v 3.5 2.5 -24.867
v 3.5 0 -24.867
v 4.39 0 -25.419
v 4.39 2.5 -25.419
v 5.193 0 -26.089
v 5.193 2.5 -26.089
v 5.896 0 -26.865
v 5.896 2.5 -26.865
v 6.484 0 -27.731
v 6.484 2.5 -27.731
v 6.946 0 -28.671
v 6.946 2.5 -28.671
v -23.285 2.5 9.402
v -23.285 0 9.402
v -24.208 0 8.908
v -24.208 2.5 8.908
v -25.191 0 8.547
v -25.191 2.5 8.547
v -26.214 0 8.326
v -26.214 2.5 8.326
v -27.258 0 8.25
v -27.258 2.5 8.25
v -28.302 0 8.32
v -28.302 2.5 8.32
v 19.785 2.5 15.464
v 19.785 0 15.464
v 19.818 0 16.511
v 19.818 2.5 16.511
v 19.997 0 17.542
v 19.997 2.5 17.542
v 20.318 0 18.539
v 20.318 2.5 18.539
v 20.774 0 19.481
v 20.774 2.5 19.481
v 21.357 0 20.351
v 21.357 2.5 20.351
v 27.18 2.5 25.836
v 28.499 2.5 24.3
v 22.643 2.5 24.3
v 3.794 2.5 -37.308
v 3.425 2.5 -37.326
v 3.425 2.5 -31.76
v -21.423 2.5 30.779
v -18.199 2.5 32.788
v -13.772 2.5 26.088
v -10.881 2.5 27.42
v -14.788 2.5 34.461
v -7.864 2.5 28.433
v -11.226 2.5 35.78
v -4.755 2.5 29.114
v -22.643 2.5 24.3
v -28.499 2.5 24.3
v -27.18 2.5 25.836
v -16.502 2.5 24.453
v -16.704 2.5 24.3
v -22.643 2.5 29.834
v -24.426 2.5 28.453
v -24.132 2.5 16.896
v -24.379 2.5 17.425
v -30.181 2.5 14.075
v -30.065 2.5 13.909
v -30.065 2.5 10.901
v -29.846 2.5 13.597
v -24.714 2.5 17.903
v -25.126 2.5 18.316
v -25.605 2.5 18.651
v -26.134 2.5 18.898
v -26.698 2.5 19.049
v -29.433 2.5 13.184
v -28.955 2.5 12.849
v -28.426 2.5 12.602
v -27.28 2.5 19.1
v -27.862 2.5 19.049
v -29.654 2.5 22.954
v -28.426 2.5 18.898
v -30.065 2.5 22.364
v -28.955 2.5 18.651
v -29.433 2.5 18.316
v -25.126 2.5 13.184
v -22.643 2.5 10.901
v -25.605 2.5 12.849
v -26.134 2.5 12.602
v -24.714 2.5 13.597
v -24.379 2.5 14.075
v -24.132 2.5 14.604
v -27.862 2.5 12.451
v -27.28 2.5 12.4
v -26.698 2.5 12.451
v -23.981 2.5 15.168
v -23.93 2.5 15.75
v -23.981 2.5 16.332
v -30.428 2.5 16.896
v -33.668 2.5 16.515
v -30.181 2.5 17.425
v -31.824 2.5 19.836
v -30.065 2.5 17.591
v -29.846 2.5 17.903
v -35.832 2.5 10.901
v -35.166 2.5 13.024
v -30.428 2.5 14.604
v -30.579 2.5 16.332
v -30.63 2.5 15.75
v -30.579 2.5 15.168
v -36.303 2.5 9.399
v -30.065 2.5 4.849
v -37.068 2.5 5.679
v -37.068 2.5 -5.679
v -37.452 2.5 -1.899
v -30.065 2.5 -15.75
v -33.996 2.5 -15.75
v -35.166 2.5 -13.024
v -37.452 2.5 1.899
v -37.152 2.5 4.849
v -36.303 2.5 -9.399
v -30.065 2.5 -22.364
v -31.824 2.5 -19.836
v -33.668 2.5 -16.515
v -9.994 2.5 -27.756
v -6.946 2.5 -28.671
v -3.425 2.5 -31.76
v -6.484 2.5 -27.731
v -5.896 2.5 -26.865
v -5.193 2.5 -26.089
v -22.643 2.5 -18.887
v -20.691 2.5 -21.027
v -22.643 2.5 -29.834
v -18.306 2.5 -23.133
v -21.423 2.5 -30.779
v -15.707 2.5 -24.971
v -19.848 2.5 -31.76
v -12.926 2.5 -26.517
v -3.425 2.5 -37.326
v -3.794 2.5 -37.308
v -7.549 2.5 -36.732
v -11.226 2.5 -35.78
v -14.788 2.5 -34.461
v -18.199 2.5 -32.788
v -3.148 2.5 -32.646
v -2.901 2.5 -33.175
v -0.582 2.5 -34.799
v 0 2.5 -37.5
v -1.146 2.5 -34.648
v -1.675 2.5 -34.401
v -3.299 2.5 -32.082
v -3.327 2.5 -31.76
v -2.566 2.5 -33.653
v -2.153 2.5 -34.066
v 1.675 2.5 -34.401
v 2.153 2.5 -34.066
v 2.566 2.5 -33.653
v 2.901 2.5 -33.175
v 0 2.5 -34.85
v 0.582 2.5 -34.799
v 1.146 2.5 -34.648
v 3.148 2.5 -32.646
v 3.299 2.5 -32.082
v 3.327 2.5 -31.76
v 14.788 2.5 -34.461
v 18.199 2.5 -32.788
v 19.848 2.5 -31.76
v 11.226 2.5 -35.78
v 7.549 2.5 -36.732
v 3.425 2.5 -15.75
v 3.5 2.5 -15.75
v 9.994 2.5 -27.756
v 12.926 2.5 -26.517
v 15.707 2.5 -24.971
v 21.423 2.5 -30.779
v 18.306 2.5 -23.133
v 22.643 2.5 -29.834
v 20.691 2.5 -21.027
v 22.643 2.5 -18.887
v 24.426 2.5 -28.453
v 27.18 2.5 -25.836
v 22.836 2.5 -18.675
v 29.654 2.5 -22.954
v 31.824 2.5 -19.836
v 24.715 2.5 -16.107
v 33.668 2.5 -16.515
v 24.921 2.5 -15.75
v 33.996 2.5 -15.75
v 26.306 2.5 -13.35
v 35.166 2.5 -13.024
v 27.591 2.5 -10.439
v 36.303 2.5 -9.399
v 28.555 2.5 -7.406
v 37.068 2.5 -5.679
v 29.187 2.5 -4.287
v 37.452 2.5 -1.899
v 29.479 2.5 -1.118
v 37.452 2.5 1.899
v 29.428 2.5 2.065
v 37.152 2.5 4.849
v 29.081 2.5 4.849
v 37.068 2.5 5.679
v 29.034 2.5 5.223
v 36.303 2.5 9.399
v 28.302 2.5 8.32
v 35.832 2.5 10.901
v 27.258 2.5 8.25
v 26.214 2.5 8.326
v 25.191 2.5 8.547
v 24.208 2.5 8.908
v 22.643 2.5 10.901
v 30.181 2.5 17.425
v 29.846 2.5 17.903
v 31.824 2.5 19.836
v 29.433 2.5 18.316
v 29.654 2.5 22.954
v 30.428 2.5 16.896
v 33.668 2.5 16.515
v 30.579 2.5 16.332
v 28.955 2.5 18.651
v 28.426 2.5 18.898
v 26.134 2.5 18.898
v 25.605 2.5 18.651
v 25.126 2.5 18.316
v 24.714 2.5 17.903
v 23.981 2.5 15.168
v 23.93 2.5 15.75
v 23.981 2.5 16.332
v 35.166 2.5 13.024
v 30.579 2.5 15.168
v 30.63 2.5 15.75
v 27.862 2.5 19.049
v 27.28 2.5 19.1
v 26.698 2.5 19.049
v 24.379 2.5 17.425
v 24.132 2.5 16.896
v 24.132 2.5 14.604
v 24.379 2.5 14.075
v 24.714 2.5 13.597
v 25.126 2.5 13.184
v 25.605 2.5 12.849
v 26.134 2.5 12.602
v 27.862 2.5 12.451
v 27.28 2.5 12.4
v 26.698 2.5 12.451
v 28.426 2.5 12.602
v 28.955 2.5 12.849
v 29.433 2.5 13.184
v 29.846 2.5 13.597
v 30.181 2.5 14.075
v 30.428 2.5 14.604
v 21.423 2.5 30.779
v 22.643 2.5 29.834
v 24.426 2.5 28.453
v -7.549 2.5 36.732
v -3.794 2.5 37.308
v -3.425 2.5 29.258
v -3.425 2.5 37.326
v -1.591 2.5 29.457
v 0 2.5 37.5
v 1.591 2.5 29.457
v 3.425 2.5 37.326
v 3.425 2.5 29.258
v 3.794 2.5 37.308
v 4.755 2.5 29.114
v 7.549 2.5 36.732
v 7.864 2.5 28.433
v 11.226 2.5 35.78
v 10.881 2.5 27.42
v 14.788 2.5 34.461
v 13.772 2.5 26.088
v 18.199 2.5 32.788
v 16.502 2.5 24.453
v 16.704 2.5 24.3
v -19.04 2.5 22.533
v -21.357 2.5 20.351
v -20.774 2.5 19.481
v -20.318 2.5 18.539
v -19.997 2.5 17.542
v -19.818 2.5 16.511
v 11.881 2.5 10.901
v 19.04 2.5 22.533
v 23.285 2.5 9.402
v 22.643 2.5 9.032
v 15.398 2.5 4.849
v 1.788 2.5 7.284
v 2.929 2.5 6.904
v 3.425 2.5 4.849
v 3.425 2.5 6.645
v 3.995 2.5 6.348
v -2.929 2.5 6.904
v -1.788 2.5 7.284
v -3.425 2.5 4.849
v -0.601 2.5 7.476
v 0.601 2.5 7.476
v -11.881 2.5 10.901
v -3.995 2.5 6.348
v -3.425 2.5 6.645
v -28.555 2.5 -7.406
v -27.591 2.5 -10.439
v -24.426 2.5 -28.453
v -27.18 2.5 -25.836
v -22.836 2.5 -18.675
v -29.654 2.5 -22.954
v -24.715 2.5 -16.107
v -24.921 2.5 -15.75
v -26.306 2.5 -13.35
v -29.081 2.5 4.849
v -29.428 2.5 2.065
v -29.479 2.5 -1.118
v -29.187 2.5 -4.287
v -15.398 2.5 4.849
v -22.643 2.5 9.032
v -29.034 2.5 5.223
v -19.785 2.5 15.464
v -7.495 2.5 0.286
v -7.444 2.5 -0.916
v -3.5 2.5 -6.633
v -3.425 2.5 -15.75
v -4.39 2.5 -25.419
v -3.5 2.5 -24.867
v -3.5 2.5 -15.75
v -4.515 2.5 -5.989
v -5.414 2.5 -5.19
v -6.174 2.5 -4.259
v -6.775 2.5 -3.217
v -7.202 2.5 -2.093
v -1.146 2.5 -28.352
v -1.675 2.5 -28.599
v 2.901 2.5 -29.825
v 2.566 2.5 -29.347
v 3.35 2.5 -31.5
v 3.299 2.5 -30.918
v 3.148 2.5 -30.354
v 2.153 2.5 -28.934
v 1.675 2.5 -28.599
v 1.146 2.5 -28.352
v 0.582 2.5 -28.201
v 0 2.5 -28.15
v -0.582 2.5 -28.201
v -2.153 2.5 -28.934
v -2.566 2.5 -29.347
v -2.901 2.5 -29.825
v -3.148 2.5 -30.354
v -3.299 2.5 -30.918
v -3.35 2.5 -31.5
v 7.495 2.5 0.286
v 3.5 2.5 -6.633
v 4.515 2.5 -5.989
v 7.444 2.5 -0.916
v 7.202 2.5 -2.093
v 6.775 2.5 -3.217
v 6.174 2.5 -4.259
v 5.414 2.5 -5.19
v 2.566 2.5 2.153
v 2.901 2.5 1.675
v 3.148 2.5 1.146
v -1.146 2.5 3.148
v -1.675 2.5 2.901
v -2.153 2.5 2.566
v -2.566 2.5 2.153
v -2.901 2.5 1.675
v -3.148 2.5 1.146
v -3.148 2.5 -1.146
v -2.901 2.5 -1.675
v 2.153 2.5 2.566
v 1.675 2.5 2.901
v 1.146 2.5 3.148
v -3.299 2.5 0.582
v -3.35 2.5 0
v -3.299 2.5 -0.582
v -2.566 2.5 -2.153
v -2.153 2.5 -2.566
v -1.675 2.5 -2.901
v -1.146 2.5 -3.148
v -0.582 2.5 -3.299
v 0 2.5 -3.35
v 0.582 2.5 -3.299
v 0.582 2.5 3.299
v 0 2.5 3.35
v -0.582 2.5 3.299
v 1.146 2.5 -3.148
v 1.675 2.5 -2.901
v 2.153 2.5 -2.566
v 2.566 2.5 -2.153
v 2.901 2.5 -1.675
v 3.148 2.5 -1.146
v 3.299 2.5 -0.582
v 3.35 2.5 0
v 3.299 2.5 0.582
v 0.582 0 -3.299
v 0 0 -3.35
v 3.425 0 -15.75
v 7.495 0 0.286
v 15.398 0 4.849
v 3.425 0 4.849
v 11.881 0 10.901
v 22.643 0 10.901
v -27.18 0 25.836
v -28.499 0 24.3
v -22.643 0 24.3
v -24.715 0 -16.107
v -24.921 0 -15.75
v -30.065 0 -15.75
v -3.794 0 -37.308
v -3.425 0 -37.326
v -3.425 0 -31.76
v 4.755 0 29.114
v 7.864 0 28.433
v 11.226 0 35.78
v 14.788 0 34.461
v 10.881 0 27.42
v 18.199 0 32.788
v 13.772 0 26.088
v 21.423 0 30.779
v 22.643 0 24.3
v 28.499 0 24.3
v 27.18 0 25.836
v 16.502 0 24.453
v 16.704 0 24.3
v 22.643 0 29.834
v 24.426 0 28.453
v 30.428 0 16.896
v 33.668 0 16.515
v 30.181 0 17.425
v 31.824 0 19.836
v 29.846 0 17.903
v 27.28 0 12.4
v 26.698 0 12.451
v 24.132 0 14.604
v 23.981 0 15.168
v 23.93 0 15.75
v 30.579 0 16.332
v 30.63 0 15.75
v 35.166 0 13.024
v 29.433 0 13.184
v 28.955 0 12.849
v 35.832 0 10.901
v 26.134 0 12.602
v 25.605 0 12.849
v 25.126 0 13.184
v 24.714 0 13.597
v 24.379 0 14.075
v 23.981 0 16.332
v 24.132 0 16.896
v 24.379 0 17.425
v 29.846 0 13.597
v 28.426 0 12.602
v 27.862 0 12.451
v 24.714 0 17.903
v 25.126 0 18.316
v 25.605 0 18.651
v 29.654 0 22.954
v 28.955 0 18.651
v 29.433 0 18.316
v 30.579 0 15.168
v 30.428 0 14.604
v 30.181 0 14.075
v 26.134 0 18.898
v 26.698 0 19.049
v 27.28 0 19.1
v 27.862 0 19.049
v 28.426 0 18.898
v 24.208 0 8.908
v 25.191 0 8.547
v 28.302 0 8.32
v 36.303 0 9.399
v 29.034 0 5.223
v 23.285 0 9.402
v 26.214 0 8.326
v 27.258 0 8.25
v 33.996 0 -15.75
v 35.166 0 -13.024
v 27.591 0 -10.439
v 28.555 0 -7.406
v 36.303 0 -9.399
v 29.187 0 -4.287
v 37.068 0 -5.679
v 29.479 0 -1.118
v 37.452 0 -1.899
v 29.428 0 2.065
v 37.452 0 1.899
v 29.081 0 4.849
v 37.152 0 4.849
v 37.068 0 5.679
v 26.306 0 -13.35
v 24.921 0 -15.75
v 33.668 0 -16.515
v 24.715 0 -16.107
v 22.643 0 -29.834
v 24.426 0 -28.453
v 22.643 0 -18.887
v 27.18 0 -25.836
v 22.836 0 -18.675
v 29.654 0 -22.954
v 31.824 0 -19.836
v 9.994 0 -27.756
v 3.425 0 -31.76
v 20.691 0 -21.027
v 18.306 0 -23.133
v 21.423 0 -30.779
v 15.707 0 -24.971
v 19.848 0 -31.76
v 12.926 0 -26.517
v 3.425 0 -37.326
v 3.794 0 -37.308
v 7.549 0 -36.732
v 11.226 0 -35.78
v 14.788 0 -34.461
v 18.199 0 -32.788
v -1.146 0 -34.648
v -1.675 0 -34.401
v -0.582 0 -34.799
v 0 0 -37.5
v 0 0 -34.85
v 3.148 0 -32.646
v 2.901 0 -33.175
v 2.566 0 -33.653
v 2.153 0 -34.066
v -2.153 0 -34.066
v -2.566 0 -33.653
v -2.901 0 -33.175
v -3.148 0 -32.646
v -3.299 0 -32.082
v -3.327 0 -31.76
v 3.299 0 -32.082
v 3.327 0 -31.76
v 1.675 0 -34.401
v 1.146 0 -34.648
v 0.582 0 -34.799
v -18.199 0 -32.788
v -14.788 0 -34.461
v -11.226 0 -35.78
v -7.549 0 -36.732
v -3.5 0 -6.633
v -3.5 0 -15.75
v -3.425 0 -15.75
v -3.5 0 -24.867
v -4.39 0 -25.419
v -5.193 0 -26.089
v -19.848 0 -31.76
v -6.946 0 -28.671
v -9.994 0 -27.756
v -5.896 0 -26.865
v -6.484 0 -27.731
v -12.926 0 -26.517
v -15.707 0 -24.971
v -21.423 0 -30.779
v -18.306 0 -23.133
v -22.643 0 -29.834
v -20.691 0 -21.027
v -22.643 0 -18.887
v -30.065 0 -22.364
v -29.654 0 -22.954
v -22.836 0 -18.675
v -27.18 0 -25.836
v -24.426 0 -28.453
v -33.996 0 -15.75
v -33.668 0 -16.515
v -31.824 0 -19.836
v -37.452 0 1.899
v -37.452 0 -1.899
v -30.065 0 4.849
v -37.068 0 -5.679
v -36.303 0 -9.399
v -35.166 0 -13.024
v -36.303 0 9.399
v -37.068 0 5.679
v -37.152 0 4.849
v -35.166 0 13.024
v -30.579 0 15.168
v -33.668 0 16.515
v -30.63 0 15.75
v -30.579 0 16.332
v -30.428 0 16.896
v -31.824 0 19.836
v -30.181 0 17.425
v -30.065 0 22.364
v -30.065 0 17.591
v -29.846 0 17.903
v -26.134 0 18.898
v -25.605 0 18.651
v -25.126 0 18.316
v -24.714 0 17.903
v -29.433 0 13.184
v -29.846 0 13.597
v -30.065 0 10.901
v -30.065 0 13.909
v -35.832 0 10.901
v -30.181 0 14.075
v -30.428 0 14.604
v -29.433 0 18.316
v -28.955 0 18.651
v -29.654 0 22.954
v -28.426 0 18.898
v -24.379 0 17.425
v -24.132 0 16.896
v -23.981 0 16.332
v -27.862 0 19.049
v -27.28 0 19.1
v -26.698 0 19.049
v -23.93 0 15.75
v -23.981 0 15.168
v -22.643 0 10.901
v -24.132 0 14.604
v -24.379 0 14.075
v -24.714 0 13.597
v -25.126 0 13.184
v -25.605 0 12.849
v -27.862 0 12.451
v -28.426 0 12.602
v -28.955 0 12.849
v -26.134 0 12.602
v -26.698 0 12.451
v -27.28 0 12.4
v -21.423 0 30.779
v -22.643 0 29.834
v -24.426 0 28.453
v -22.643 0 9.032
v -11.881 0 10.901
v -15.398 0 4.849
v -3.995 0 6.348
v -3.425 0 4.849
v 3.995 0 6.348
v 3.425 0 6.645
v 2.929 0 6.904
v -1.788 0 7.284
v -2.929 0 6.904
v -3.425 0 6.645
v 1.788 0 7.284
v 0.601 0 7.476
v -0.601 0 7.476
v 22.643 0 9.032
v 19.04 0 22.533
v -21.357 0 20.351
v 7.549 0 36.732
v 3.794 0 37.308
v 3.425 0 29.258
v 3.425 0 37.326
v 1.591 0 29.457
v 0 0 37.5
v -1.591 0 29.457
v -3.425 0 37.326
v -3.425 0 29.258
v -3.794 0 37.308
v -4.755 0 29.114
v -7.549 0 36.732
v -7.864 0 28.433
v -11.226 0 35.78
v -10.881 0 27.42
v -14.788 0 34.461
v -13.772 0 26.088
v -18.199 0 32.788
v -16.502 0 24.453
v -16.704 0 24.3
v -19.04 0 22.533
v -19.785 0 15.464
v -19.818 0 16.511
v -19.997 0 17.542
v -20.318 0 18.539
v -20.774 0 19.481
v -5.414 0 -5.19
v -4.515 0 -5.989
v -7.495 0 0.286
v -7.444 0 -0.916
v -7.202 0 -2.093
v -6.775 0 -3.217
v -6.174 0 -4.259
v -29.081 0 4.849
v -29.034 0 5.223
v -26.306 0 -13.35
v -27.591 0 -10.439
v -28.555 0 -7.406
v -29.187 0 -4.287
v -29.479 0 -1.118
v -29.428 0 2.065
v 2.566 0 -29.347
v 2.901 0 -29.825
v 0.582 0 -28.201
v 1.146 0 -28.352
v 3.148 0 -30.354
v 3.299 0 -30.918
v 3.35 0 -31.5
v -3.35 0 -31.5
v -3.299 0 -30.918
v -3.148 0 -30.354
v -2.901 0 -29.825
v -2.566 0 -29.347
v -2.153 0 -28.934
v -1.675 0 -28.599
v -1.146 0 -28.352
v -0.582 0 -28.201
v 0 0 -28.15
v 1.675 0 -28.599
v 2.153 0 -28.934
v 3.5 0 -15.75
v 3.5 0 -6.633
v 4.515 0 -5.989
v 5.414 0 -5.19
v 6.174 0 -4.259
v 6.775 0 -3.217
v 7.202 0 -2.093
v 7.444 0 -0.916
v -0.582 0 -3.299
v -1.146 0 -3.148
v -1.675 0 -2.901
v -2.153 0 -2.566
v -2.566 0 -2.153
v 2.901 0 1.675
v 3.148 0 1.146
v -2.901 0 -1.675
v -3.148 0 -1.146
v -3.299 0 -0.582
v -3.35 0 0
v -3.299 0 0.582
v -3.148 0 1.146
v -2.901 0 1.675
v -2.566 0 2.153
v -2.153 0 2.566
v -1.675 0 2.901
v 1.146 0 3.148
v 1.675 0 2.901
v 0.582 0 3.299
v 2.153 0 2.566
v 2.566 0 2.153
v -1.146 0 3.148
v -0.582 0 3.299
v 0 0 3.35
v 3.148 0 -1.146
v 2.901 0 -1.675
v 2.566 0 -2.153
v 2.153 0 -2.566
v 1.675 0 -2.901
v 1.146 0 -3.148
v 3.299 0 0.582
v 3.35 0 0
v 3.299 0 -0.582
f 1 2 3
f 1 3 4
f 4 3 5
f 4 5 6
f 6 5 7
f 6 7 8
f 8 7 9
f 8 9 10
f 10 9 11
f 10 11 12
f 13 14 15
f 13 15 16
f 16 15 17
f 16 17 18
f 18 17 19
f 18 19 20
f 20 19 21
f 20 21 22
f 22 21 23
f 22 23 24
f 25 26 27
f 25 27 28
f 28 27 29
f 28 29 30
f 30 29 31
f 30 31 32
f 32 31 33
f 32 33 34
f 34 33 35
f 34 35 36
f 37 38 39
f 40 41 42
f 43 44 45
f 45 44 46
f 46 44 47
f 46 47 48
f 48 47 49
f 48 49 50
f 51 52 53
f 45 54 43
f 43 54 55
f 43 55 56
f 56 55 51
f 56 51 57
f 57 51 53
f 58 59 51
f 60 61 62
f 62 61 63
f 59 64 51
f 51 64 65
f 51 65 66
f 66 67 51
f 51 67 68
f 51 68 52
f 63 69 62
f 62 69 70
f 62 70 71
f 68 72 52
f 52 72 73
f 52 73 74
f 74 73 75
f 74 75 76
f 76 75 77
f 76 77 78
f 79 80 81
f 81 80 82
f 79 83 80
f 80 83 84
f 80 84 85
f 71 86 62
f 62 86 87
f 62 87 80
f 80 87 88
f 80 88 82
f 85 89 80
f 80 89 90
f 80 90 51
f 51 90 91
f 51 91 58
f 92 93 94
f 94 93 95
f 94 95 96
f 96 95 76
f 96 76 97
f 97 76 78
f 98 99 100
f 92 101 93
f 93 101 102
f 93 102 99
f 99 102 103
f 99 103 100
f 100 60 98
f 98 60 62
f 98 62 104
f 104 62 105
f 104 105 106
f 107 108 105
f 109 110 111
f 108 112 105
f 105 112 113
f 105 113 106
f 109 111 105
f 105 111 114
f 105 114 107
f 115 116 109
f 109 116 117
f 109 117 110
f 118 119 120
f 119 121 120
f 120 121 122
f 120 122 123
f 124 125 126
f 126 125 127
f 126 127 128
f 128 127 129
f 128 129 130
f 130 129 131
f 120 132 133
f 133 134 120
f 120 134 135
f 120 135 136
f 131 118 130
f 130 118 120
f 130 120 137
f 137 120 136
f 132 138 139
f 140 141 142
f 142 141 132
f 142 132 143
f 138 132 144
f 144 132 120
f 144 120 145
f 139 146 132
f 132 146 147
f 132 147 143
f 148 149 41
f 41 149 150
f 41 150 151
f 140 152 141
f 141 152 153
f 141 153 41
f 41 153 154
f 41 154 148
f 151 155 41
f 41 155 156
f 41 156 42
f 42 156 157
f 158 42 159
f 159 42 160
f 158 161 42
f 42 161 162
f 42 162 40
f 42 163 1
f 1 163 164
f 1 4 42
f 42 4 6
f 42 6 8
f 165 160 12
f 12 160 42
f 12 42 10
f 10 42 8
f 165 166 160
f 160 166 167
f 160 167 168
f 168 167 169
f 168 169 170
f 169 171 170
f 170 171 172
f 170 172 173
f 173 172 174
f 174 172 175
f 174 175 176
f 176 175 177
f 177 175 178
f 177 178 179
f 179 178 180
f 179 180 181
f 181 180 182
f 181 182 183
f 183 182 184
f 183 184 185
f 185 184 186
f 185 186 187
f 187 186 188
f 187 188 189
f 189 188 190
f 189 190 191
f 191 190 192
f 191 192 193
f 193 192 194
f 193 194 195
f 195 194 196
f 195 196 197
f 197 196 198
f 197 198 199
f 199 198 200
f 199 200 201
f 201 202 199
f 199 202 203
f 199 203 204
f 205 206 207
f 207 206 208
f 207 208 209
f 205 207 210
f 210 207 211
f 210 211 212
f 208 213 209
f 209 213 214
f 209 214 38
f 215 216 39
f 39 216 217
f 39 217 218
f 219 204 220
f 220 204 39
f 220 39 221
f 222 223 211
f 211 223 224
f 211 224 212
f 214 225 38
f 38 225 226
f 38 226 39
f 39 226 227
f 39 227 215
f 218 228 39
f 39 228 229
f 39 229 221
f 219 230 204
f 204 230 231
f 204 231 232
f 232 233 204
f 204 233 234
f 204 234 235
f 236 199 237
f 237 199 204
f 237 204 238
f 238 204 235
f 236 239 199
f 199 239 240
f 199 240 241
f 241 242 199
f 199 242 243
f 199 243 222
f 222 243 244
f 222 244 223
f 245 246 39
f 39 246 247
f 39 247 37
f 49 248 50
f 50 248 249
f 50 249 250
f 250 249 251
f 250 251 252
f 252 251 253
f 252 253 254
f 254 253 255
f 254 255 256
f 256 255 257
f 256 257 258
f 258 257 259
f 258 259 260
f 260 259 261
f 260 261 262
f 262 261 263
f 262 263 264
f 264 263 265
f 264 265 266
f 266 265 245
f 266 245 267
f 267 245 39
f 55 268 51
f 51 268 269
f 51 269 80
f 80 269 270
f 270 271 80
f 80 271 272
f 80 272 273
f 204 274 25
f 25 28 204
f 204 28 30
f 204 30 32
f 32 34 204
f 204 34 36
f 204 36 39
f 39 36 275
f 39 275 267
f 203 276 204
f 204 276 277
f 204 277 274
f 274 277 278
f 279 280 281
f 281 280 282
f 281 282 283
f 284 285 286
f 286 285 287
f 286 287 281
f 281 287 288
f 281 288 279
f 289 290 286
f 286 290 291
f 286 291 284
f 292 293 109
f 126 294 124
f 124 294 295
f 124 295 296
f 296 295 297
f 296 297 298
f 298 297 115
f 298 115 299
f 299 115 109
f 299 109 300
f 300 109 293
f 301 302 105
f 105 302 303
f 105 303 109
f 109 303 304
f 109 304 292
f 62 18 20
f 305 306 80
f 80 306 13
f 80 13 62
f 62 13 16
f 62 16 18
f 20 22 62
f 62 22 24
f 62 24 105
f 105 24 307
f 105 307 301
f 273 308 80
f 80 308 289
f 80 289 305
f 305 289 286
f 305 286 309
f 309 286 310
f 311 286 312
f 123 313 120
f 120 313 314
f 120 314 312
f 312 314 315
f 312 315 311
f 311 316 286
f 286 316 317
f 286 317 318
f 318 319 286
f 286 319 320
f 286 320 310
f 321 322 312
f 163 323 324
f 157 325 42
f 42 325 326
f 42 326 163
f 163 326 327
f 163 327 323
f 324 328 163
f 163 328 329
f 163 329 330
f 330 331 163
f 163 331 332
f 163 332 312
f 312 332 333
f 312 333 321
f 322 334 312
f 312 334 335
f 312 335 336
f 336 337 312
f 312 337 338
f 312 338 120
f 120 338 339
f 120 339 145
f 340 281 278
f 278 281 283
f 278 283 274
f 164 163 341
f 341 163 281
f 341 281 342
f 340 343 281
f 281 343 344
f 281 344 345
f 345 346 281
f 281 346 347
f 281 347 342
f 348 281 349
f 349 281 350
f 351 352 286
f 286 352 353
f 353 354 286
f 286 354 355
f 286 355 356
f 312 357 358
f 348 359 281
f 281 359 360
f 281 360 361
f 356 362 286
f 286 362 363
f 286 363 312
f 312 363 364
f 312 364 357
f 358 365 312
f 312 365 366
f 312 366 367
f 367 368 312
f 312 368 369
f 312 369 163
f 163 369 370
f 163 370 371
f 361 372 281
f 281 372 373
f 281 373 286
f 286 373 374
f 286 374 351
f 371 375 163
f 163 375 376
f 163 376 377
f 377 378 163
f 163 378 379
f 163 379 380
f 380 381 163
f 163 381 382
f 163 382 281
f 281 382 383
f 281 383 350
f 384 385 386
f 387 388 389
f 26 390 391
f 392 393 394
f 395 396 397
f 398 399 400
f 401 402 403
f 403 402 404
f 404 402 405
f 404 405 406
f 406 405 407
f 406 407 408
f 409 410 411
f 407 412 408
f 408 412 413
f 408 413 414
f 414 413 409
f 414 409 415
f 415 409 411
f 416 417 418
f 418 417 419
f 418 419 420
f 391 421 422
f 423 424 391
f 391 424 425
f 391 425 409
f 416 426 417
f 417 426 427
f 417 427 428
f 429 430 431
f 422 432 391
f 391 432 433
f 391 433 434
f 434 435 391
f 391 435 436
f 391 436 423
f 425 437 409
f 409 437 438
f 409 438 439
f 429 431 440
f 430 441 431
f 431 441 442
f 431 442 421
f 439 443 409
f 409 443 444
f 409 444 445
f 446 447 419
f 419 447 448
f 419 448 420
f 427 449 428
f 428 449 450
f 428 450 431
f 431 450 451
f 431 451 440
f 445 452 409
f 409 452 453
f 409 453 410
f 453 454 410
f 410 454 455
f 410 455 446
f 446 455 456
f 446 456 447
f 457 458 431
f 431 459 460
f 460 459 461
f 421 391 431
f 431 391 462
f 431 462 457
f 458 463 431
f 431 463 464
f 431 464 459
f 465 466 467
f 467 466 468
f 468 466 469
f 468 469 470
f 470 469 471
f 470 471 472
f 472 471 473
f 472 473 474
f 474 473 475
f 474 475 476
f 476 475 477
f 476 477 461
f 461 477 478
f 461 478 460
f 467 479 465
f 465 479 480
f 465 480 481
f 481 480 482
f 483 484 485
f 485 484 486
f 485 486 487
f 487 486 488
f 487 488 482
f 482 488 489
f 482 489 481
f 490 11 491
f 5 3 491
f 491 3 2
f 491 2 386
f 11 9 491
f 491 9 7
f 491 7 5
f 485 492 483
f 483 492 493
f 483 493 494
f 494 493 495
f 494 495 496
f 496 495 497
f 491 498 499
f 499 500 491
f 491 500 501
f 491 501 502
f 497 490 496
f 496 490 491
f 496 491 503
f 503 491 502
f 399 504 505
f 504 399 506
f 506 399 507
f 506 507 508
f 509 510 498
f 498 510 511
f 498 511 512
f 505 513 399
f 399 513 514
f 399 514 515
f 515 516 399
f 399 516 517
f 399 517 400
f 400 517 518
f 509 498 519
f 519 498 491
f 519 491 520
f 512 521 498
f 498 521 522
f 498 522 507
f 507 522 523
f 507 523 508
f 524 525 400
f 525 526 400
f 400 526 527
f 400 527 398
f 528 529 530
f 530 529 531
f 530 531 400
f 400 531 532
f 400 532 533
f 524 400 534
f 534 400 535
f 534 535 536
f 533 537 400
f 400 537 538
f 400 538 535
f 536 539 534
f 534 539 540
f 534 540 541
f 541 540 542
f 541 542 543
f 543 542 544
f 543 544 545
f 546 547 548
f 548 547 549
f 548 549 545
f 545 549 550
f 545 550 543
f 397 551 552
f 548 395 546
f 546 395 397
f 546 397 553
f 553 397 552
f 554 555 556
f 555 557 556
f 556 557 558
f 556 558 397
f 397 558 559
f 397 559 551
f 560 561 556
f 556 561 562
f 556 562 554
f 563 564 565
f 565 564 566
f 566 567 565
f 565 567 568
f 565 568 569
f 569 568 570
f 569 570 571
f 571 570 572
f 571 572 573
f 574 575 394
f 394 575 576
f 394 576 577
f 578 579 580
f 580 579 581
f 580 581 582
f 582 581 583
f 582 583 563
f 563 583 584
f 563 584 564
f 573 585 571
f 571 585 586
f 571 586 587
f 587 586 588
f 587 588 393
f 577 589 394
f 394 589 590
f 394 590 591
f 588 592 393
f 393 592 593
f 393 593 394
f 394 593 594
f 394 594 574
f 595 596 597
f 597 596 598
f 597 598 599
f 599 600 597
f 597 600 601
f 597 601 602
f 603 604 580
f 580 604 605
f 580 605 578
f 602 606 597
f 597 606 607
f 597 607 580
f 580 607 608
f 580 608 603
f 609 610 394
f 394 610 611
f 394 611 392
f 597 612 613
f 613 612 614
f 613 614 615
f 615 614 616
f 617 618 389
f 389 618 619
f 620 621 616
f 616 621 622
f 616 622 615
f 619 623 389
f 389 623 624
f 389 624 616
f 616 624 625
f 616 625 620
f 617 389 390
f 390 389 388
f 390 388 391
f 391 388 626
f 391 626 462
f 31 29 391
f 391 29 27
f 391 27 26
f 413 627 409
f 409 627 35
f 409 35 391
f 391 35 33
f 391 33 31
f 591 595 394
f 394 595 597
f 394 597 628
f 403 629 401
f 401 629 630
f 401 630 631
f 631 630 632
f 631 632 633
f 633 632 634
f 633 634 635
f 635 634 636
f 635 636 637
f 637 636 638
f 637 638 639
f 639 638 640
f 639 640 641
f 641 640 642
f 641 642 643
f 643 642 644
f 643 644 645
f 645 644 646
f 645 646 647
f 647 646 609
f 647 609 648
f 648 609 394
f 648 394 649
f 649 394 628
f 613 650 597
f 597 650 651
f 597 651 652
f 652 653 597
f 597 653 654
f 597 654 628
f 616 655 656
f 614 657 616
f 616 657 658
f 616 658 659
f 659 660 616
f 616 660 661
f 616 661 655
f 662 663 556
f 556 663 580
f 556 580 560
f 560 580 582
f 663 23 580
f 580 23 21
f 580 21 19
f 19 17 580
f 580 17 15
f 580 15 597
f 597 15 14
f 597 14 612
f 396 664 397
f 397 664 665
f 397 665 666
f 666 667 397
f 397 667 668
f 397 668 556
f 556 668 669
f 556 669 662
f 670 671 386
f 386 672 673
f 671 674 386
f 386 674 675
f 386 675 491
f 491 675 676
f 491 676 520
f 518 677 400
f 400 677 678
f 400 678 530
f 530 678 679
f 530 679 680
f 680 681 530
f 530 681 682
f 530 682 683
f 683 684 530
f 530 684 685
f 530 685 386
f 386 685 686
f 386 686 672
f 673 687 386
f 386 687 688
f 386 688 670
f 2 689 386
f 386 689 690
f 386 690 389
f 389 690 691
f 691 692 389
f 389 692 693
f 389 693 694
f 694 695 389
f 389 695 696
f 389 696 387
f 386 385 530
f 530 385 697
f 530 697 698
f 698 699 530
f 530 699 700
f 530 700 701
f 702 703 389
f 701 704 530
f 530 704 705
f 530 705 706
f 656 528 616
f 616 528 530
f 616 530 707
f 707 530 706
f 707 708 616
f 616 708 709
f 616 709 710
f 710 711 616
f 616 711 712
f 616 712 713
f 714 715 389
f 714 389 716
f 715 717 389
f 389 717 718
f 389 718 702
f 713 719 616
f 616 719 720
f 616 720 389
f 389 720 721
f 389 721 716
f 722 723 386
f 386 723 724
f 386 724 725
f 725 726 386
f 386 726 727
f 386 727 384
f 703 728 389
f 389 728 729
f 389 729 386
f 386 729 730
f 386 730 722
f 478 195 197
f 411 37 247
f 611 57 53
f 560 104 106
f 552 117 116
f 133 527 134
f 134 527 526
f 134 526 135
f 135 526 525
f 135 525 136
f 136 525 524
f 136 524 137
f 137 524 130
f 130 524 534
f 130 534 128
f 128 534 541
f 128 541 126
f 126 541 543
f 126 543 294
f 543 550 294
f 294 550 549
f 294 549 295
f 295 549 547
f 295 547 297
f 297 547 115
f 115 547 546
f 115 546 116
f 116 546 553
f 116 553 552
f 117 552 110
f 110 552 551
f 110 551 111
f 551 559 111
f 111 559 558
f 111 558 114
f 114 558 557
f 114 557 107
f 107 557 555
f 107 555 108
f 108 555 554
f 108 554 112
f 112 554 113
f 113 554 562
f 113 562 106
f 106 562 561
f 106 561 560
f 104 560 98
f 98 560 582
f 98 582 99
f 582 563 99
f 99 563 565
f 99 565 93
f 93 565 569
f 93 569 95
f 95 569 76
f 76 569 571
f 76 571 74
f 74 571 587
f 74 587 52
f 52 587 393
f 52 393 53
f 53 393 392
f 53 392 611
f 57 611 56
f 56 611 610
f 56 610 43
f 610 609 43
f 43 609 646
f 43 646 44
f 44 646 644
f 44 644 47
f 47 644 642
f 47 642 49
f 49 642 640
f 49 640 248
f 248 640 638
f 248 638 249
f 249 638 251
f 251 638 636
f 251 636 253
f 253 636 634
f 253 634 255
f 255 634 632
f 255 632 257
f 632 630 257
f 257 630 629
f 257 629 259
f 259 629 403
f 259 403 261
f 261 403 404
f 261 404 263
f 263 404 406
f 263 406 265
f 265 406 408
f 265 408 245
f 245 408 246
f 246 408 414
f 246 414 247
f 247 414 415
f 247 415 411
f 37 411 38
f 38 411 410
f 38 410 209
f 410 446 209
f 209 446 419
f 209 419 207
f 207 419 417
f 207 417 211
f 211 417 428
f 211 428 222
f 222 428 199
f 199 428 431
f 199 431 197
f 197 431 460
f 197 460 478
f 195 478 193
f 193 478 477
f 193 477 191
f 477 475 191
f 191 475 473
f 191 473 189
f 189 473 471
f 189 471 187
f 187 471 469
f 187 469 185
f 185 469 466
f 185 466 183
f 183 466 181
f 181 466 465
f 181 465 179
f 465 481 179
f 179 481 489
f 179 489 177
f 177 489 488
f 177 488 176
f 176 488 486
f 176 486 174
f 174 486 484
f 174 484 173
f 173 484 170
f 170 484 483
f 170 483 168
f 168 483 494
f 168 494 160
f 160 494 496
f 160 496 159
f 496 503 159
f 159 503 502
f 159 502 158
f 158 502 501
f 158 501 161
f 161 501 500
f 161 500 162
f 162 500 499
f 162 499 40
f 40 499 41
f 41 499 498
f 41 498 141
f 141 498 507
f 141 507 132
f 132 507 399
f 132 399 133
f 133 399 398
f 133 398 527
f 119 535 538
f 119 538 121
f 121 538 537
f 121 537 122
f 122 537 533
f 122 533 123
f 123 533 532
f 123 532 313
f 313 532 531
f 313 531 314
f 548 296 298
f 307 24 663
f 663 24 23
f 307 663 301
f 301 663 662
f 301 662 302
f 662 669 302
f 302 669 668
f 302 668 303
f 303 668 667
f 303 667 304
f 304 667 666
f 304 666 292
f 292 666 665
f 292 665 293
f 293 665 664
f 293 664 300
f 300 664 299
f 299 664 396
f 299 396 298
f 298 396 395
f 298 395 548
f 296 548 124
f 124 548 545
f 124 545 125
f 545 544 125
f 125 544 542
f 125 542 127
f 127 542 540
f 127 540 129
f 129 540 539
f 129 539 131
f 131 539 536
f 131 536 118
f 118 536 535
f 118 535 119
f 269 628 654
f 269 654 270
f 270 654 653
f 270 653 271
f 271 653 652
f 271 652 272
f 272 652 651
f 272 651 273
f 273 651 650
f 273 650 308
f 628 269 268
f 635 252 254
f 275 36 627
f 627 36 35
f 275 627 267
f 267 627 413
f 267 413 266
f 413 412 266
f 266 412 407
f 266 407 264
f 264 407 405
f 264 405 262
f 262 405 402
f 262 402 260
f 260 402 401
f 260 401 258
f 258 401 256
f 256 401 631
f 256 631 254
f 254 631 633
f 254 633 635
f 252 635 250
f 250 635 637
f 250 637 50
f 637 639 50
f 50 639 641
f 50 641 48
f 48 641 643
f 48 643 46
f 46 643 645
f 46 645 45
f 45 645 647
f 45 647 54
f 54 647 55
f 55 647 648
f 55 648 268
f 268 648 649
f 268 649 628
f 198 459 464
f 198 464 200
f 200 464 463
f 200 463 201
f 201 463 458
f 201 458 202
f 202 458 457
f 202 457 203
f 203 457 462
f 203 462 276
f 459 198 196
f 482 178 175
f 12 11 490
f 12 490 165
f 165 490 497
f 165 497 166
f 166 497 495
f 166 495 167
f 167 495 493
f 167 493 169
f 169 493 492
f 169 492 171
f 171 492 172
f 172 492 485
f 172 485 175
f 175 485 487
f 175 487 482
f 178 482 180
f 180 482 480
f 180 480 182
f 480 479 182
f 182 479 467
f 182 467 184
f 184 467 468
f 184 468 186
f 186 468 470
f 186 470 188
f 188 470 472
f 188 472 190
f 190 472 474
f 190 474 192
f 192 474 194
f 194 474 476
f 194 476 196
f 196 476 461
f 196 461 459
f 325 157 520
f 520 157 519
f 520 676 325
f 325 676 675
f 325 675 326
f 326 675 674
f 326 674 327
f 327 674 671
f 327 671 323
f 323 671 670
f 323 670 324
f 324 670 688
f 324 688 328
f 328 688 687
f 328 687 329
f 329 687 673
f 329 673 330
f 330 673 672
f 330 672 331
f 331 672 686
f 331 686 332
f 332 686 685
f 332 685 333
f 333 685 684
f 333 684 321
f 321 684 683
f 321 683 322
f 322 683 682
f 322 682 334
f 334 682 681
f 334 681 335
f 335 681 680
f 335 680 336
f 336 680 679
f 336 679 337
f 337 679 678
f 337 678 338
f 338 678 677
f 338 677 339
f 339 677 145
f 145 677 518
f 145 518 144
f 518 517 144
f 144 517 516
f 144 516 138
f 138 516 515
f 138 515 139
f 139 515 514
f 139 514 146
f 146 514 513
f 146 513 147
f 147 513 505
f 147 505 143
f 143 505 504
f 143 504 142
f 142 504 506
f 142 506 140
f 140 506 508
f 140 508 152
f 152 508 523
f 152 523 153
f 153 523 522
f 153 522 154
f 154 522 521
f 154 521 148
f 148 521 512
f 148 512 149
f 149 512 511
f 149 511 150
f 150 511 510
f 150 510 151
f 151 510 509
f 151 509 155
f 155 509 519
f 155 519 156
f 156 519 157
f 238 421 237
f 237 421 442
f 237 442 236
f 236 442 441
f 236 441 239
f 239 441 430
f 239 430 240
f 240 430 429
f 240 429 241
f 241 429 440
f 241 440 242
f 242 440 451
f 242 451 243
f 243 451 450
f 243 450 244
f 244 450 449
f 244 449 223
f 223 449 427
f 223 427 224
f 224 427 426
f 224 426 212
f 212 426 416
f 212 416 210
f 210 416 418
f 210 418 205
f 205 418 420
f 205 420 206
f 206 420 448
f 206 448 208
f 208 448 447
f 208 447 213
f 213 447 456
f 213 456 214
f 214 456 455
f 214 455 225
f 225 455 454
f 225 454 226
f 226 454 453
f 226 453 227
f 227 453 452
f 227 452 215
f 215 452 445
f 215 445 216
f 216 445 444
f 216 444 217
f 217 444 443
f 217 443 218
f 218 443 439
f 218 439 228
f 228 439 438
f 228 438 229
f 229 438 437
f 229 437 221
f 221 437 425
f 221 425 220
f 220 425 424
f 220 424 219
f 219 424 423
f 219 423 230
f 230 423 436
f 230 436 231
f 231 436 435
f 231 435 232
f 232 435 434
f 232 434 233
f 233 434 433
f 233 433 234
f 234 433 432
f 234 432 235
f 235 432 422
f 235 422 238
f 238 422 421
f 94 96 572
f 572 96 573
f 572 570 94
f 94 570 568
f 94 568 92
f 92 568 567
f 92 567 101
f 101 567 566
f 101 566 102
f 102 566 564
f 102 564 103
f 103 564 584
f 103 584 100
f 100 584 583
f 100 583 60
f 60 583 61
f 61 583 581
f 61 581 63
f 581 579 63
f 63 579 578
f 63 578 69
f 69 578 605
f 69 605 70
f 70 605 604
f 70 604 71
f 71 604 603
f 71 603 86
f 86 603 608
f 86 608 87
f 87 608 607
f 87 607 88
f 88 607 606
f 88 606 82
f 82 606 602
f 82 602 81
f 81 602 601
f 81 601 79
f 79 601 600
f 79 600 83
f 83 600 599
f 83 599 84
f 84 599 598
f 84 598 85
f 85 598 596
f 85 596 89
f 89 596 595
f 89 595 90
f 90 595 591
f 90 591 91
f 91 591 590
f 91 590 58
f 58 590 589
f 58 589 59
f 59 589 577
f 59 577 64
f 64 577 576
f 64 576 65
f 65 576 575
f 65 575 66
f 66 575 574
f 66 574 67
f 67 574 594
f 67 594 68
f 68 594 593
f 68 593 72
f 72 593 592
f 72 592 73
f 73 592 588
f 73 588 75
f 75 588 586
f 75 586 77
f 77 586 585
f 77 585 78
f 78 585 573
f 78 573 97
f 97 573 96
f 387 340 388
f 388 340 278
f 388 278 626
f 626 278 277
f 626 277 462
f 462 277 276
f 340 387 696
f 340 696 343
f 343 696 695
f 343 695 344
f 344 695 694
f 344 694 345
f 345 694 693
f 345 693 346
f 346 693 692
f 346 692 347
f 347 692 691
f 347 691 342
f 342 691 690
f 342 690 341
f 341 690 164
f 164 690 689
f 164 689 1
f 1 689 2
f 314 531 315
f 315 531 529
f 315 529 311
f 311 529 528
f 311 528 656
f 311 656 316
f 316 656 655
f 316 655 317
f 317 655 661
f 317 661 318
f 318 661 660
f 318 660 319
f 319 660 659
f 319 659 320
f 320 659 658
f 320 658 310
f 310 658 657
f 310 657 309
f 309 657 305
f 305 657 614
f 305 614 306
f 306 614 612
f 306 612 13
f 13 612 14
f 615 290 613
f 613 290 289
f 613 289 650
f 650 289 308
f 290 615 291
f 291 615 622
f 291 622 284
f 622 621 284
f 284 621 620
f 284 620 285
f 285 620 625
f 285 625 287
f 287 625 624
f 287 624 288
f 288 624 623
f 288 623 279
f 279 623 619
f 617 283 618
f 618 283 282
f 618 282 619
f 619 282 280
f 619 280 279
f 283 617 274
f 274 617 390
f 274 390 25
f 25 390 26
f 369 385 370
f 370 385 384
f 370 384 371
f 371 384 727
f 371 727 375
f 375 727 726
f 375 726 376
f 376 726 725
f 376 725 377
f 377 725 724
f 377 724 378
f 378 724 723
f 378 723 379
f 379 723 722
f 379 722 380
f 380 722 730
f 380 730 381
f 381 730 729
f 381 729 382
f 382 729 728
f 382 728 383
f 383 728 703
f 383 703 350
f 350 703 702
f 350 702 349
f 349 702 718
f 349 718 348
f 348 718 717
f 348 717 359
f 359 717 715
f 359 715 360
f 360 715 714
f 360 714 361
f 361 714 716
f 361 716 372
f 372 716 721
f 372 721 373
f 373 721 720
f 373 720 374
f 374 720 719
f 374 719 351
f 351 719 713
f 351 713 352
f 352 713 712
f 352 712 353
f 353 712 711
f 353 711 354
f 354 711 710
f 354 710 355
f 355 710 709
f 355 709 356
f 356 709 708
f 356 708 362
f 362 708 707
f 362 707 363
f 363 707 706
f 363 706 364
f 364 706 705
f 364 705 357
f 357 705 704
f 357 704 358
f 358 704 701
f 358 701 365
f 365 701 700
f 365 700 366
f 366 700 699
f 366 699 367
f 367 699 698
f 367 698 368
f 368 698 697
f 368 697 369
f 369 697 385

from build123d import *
from build123d.topology import SkipClean

# Parameters (mm, degrees)
SKETCH1_R           = 37.5
SKETCH1_R_2         = 3.35
BOSS_EXTRUDE1_DEPTH = 2.5
BOSS_EXTRUDE2_DEPTH = 2.5


with BuildPart() as part:
    # Sketch1 → Boss-Extrude1 (new body)
    with BuildSketch(Plane(origin=(0, 0, 0), x_dir=(1, 0, 0), z_dir=(0, 1, 0))):
        with Locations(Location((0, 0, 0), (0, 0, 270))):
            Circle(SKETCH1_R)
        with Locations(Location((0, 31.5, 0), (0, 0, 270))):
            Circle(SKETCH1_R_2, mode=Mode.SUBTRACT)
        with Locations(Location((27.279800219, -15.75, 0), (0, 0, 270))):
            Circle(SKETCH1_R_2, mode=Mode.SUBTRACT)
        with Locations(Location((-27.279800219, -15.75, 0), (0, 0, 270))):
            Circle(SKETCH1_R_2, mode=Mode.SUBTRACT)
        with BuildLine():
            ThreePointArc((-6.945839996, 28.670634921), (-25.547749412, 14.75), (-28.302418182, -8.320043573))
            ThreePointArc((-28.302418182, -8.320043573), (-20.784609691, -12), (-21.356578186, -20.350591347))
            ThreePointArc((-21.356578186, -20.350591347), (0, -29.5), (21.356578186, -20.350591347))
            ThreePointArc((21.356578186, -20.350591347), (20.784609691, -12), (28.302418182, -8.320043573))
            ThreePointArc((28.302418182, -8.320043573), (25.547749412, 14.75), (6.945839996, 28.670634921))
            ThreePointArc((6.945839996, 28.670634921), (0, 24), (-6.945839996, 28.670634921))
        make_face(mode=Mode.SUBTRACT)
    extrude(amount=BOSS_EXTRUDE1_DEPTH)

    # Sketch2 → Boss-Extrude2 (add)
    with SkipClean():  # the faces are left unmerged after this step: merging them gives an invalid solid
        with BuildSketch(Plane(origin=(0, 0, 0), x_dir=(1, 0, 0), z_dir=(0, 1, 0))):
            with BuildLine():
                Line((-3.5, 31.5), (-3.5, 6.633249581))
                ThreePointArc((-3.5, 6.633249581), (-6.495190528, 3.75), (-7.494562647, -0.285535877))
                Line((-7.494562647, -0.285535877), (-29.029800219, -12.718911087))
                Line((-29.029800219, -12.718911087), (-28.954800219, -12.848814897))
                ThreePointArc((-28.954800219, -12.848814897), (-24.378615117, -14.075), (-25.604800219, -18.651185103))
                Line((-25.604800219, -18.651185103), (-25.529800219, -18.781088913))
                Line((-25.529800219, -18.781088913), (-3.994562647, -6.347713704))
                ThreePointArc((-3.994562647, -6.347713704), (0, -7.5), (3.994562647, -6.347713704))
                Line((3.994562647, -6.347713704), (25.529800219, -18.781088913))
                Line((25.529800219, -18.781088913), (25.604800219, -18.651185103))
                ThreePointArc((25.604800219, -18.651185103), (24.378615117, -14.075), (28.954800219, -12.848814897))
                Line((28.954800219, -12.848814897), (29.029800219, -12.718911087))
                Line((29.029800219, -12.718911087), (7.494562647, -0.285535877))
                ThreePointArc((7.494562647, -0.285535877), (6.495190528, 3.75), (3.5, 6.633249581))
                Line((3.5, 6.633249581), (3.5, 31.5))
                Line((3.5, 31.5), (3.35, 31.5))
                ThreePointArc((3.35, 31.5), (0, 28.15), (-3.35, 31.5))
                Line((-3.35, 31.5), (-3.5, 31.5))
            make_face()
            with BuildLine():
                ThreePointArc((-1.675, 2.901185103), (2.901185103, 1.675), (1.675, -2.901185103))
                ThreePointArc((1.675, -2.901185103), (-2.901185103, -1.675), (-1.675, 2.901185103))
            make_face(mode=Mode.SUBTRACT)
        extrude(amount=BOSS_EXTRUDE2_DEPTH)


solid = part.part
